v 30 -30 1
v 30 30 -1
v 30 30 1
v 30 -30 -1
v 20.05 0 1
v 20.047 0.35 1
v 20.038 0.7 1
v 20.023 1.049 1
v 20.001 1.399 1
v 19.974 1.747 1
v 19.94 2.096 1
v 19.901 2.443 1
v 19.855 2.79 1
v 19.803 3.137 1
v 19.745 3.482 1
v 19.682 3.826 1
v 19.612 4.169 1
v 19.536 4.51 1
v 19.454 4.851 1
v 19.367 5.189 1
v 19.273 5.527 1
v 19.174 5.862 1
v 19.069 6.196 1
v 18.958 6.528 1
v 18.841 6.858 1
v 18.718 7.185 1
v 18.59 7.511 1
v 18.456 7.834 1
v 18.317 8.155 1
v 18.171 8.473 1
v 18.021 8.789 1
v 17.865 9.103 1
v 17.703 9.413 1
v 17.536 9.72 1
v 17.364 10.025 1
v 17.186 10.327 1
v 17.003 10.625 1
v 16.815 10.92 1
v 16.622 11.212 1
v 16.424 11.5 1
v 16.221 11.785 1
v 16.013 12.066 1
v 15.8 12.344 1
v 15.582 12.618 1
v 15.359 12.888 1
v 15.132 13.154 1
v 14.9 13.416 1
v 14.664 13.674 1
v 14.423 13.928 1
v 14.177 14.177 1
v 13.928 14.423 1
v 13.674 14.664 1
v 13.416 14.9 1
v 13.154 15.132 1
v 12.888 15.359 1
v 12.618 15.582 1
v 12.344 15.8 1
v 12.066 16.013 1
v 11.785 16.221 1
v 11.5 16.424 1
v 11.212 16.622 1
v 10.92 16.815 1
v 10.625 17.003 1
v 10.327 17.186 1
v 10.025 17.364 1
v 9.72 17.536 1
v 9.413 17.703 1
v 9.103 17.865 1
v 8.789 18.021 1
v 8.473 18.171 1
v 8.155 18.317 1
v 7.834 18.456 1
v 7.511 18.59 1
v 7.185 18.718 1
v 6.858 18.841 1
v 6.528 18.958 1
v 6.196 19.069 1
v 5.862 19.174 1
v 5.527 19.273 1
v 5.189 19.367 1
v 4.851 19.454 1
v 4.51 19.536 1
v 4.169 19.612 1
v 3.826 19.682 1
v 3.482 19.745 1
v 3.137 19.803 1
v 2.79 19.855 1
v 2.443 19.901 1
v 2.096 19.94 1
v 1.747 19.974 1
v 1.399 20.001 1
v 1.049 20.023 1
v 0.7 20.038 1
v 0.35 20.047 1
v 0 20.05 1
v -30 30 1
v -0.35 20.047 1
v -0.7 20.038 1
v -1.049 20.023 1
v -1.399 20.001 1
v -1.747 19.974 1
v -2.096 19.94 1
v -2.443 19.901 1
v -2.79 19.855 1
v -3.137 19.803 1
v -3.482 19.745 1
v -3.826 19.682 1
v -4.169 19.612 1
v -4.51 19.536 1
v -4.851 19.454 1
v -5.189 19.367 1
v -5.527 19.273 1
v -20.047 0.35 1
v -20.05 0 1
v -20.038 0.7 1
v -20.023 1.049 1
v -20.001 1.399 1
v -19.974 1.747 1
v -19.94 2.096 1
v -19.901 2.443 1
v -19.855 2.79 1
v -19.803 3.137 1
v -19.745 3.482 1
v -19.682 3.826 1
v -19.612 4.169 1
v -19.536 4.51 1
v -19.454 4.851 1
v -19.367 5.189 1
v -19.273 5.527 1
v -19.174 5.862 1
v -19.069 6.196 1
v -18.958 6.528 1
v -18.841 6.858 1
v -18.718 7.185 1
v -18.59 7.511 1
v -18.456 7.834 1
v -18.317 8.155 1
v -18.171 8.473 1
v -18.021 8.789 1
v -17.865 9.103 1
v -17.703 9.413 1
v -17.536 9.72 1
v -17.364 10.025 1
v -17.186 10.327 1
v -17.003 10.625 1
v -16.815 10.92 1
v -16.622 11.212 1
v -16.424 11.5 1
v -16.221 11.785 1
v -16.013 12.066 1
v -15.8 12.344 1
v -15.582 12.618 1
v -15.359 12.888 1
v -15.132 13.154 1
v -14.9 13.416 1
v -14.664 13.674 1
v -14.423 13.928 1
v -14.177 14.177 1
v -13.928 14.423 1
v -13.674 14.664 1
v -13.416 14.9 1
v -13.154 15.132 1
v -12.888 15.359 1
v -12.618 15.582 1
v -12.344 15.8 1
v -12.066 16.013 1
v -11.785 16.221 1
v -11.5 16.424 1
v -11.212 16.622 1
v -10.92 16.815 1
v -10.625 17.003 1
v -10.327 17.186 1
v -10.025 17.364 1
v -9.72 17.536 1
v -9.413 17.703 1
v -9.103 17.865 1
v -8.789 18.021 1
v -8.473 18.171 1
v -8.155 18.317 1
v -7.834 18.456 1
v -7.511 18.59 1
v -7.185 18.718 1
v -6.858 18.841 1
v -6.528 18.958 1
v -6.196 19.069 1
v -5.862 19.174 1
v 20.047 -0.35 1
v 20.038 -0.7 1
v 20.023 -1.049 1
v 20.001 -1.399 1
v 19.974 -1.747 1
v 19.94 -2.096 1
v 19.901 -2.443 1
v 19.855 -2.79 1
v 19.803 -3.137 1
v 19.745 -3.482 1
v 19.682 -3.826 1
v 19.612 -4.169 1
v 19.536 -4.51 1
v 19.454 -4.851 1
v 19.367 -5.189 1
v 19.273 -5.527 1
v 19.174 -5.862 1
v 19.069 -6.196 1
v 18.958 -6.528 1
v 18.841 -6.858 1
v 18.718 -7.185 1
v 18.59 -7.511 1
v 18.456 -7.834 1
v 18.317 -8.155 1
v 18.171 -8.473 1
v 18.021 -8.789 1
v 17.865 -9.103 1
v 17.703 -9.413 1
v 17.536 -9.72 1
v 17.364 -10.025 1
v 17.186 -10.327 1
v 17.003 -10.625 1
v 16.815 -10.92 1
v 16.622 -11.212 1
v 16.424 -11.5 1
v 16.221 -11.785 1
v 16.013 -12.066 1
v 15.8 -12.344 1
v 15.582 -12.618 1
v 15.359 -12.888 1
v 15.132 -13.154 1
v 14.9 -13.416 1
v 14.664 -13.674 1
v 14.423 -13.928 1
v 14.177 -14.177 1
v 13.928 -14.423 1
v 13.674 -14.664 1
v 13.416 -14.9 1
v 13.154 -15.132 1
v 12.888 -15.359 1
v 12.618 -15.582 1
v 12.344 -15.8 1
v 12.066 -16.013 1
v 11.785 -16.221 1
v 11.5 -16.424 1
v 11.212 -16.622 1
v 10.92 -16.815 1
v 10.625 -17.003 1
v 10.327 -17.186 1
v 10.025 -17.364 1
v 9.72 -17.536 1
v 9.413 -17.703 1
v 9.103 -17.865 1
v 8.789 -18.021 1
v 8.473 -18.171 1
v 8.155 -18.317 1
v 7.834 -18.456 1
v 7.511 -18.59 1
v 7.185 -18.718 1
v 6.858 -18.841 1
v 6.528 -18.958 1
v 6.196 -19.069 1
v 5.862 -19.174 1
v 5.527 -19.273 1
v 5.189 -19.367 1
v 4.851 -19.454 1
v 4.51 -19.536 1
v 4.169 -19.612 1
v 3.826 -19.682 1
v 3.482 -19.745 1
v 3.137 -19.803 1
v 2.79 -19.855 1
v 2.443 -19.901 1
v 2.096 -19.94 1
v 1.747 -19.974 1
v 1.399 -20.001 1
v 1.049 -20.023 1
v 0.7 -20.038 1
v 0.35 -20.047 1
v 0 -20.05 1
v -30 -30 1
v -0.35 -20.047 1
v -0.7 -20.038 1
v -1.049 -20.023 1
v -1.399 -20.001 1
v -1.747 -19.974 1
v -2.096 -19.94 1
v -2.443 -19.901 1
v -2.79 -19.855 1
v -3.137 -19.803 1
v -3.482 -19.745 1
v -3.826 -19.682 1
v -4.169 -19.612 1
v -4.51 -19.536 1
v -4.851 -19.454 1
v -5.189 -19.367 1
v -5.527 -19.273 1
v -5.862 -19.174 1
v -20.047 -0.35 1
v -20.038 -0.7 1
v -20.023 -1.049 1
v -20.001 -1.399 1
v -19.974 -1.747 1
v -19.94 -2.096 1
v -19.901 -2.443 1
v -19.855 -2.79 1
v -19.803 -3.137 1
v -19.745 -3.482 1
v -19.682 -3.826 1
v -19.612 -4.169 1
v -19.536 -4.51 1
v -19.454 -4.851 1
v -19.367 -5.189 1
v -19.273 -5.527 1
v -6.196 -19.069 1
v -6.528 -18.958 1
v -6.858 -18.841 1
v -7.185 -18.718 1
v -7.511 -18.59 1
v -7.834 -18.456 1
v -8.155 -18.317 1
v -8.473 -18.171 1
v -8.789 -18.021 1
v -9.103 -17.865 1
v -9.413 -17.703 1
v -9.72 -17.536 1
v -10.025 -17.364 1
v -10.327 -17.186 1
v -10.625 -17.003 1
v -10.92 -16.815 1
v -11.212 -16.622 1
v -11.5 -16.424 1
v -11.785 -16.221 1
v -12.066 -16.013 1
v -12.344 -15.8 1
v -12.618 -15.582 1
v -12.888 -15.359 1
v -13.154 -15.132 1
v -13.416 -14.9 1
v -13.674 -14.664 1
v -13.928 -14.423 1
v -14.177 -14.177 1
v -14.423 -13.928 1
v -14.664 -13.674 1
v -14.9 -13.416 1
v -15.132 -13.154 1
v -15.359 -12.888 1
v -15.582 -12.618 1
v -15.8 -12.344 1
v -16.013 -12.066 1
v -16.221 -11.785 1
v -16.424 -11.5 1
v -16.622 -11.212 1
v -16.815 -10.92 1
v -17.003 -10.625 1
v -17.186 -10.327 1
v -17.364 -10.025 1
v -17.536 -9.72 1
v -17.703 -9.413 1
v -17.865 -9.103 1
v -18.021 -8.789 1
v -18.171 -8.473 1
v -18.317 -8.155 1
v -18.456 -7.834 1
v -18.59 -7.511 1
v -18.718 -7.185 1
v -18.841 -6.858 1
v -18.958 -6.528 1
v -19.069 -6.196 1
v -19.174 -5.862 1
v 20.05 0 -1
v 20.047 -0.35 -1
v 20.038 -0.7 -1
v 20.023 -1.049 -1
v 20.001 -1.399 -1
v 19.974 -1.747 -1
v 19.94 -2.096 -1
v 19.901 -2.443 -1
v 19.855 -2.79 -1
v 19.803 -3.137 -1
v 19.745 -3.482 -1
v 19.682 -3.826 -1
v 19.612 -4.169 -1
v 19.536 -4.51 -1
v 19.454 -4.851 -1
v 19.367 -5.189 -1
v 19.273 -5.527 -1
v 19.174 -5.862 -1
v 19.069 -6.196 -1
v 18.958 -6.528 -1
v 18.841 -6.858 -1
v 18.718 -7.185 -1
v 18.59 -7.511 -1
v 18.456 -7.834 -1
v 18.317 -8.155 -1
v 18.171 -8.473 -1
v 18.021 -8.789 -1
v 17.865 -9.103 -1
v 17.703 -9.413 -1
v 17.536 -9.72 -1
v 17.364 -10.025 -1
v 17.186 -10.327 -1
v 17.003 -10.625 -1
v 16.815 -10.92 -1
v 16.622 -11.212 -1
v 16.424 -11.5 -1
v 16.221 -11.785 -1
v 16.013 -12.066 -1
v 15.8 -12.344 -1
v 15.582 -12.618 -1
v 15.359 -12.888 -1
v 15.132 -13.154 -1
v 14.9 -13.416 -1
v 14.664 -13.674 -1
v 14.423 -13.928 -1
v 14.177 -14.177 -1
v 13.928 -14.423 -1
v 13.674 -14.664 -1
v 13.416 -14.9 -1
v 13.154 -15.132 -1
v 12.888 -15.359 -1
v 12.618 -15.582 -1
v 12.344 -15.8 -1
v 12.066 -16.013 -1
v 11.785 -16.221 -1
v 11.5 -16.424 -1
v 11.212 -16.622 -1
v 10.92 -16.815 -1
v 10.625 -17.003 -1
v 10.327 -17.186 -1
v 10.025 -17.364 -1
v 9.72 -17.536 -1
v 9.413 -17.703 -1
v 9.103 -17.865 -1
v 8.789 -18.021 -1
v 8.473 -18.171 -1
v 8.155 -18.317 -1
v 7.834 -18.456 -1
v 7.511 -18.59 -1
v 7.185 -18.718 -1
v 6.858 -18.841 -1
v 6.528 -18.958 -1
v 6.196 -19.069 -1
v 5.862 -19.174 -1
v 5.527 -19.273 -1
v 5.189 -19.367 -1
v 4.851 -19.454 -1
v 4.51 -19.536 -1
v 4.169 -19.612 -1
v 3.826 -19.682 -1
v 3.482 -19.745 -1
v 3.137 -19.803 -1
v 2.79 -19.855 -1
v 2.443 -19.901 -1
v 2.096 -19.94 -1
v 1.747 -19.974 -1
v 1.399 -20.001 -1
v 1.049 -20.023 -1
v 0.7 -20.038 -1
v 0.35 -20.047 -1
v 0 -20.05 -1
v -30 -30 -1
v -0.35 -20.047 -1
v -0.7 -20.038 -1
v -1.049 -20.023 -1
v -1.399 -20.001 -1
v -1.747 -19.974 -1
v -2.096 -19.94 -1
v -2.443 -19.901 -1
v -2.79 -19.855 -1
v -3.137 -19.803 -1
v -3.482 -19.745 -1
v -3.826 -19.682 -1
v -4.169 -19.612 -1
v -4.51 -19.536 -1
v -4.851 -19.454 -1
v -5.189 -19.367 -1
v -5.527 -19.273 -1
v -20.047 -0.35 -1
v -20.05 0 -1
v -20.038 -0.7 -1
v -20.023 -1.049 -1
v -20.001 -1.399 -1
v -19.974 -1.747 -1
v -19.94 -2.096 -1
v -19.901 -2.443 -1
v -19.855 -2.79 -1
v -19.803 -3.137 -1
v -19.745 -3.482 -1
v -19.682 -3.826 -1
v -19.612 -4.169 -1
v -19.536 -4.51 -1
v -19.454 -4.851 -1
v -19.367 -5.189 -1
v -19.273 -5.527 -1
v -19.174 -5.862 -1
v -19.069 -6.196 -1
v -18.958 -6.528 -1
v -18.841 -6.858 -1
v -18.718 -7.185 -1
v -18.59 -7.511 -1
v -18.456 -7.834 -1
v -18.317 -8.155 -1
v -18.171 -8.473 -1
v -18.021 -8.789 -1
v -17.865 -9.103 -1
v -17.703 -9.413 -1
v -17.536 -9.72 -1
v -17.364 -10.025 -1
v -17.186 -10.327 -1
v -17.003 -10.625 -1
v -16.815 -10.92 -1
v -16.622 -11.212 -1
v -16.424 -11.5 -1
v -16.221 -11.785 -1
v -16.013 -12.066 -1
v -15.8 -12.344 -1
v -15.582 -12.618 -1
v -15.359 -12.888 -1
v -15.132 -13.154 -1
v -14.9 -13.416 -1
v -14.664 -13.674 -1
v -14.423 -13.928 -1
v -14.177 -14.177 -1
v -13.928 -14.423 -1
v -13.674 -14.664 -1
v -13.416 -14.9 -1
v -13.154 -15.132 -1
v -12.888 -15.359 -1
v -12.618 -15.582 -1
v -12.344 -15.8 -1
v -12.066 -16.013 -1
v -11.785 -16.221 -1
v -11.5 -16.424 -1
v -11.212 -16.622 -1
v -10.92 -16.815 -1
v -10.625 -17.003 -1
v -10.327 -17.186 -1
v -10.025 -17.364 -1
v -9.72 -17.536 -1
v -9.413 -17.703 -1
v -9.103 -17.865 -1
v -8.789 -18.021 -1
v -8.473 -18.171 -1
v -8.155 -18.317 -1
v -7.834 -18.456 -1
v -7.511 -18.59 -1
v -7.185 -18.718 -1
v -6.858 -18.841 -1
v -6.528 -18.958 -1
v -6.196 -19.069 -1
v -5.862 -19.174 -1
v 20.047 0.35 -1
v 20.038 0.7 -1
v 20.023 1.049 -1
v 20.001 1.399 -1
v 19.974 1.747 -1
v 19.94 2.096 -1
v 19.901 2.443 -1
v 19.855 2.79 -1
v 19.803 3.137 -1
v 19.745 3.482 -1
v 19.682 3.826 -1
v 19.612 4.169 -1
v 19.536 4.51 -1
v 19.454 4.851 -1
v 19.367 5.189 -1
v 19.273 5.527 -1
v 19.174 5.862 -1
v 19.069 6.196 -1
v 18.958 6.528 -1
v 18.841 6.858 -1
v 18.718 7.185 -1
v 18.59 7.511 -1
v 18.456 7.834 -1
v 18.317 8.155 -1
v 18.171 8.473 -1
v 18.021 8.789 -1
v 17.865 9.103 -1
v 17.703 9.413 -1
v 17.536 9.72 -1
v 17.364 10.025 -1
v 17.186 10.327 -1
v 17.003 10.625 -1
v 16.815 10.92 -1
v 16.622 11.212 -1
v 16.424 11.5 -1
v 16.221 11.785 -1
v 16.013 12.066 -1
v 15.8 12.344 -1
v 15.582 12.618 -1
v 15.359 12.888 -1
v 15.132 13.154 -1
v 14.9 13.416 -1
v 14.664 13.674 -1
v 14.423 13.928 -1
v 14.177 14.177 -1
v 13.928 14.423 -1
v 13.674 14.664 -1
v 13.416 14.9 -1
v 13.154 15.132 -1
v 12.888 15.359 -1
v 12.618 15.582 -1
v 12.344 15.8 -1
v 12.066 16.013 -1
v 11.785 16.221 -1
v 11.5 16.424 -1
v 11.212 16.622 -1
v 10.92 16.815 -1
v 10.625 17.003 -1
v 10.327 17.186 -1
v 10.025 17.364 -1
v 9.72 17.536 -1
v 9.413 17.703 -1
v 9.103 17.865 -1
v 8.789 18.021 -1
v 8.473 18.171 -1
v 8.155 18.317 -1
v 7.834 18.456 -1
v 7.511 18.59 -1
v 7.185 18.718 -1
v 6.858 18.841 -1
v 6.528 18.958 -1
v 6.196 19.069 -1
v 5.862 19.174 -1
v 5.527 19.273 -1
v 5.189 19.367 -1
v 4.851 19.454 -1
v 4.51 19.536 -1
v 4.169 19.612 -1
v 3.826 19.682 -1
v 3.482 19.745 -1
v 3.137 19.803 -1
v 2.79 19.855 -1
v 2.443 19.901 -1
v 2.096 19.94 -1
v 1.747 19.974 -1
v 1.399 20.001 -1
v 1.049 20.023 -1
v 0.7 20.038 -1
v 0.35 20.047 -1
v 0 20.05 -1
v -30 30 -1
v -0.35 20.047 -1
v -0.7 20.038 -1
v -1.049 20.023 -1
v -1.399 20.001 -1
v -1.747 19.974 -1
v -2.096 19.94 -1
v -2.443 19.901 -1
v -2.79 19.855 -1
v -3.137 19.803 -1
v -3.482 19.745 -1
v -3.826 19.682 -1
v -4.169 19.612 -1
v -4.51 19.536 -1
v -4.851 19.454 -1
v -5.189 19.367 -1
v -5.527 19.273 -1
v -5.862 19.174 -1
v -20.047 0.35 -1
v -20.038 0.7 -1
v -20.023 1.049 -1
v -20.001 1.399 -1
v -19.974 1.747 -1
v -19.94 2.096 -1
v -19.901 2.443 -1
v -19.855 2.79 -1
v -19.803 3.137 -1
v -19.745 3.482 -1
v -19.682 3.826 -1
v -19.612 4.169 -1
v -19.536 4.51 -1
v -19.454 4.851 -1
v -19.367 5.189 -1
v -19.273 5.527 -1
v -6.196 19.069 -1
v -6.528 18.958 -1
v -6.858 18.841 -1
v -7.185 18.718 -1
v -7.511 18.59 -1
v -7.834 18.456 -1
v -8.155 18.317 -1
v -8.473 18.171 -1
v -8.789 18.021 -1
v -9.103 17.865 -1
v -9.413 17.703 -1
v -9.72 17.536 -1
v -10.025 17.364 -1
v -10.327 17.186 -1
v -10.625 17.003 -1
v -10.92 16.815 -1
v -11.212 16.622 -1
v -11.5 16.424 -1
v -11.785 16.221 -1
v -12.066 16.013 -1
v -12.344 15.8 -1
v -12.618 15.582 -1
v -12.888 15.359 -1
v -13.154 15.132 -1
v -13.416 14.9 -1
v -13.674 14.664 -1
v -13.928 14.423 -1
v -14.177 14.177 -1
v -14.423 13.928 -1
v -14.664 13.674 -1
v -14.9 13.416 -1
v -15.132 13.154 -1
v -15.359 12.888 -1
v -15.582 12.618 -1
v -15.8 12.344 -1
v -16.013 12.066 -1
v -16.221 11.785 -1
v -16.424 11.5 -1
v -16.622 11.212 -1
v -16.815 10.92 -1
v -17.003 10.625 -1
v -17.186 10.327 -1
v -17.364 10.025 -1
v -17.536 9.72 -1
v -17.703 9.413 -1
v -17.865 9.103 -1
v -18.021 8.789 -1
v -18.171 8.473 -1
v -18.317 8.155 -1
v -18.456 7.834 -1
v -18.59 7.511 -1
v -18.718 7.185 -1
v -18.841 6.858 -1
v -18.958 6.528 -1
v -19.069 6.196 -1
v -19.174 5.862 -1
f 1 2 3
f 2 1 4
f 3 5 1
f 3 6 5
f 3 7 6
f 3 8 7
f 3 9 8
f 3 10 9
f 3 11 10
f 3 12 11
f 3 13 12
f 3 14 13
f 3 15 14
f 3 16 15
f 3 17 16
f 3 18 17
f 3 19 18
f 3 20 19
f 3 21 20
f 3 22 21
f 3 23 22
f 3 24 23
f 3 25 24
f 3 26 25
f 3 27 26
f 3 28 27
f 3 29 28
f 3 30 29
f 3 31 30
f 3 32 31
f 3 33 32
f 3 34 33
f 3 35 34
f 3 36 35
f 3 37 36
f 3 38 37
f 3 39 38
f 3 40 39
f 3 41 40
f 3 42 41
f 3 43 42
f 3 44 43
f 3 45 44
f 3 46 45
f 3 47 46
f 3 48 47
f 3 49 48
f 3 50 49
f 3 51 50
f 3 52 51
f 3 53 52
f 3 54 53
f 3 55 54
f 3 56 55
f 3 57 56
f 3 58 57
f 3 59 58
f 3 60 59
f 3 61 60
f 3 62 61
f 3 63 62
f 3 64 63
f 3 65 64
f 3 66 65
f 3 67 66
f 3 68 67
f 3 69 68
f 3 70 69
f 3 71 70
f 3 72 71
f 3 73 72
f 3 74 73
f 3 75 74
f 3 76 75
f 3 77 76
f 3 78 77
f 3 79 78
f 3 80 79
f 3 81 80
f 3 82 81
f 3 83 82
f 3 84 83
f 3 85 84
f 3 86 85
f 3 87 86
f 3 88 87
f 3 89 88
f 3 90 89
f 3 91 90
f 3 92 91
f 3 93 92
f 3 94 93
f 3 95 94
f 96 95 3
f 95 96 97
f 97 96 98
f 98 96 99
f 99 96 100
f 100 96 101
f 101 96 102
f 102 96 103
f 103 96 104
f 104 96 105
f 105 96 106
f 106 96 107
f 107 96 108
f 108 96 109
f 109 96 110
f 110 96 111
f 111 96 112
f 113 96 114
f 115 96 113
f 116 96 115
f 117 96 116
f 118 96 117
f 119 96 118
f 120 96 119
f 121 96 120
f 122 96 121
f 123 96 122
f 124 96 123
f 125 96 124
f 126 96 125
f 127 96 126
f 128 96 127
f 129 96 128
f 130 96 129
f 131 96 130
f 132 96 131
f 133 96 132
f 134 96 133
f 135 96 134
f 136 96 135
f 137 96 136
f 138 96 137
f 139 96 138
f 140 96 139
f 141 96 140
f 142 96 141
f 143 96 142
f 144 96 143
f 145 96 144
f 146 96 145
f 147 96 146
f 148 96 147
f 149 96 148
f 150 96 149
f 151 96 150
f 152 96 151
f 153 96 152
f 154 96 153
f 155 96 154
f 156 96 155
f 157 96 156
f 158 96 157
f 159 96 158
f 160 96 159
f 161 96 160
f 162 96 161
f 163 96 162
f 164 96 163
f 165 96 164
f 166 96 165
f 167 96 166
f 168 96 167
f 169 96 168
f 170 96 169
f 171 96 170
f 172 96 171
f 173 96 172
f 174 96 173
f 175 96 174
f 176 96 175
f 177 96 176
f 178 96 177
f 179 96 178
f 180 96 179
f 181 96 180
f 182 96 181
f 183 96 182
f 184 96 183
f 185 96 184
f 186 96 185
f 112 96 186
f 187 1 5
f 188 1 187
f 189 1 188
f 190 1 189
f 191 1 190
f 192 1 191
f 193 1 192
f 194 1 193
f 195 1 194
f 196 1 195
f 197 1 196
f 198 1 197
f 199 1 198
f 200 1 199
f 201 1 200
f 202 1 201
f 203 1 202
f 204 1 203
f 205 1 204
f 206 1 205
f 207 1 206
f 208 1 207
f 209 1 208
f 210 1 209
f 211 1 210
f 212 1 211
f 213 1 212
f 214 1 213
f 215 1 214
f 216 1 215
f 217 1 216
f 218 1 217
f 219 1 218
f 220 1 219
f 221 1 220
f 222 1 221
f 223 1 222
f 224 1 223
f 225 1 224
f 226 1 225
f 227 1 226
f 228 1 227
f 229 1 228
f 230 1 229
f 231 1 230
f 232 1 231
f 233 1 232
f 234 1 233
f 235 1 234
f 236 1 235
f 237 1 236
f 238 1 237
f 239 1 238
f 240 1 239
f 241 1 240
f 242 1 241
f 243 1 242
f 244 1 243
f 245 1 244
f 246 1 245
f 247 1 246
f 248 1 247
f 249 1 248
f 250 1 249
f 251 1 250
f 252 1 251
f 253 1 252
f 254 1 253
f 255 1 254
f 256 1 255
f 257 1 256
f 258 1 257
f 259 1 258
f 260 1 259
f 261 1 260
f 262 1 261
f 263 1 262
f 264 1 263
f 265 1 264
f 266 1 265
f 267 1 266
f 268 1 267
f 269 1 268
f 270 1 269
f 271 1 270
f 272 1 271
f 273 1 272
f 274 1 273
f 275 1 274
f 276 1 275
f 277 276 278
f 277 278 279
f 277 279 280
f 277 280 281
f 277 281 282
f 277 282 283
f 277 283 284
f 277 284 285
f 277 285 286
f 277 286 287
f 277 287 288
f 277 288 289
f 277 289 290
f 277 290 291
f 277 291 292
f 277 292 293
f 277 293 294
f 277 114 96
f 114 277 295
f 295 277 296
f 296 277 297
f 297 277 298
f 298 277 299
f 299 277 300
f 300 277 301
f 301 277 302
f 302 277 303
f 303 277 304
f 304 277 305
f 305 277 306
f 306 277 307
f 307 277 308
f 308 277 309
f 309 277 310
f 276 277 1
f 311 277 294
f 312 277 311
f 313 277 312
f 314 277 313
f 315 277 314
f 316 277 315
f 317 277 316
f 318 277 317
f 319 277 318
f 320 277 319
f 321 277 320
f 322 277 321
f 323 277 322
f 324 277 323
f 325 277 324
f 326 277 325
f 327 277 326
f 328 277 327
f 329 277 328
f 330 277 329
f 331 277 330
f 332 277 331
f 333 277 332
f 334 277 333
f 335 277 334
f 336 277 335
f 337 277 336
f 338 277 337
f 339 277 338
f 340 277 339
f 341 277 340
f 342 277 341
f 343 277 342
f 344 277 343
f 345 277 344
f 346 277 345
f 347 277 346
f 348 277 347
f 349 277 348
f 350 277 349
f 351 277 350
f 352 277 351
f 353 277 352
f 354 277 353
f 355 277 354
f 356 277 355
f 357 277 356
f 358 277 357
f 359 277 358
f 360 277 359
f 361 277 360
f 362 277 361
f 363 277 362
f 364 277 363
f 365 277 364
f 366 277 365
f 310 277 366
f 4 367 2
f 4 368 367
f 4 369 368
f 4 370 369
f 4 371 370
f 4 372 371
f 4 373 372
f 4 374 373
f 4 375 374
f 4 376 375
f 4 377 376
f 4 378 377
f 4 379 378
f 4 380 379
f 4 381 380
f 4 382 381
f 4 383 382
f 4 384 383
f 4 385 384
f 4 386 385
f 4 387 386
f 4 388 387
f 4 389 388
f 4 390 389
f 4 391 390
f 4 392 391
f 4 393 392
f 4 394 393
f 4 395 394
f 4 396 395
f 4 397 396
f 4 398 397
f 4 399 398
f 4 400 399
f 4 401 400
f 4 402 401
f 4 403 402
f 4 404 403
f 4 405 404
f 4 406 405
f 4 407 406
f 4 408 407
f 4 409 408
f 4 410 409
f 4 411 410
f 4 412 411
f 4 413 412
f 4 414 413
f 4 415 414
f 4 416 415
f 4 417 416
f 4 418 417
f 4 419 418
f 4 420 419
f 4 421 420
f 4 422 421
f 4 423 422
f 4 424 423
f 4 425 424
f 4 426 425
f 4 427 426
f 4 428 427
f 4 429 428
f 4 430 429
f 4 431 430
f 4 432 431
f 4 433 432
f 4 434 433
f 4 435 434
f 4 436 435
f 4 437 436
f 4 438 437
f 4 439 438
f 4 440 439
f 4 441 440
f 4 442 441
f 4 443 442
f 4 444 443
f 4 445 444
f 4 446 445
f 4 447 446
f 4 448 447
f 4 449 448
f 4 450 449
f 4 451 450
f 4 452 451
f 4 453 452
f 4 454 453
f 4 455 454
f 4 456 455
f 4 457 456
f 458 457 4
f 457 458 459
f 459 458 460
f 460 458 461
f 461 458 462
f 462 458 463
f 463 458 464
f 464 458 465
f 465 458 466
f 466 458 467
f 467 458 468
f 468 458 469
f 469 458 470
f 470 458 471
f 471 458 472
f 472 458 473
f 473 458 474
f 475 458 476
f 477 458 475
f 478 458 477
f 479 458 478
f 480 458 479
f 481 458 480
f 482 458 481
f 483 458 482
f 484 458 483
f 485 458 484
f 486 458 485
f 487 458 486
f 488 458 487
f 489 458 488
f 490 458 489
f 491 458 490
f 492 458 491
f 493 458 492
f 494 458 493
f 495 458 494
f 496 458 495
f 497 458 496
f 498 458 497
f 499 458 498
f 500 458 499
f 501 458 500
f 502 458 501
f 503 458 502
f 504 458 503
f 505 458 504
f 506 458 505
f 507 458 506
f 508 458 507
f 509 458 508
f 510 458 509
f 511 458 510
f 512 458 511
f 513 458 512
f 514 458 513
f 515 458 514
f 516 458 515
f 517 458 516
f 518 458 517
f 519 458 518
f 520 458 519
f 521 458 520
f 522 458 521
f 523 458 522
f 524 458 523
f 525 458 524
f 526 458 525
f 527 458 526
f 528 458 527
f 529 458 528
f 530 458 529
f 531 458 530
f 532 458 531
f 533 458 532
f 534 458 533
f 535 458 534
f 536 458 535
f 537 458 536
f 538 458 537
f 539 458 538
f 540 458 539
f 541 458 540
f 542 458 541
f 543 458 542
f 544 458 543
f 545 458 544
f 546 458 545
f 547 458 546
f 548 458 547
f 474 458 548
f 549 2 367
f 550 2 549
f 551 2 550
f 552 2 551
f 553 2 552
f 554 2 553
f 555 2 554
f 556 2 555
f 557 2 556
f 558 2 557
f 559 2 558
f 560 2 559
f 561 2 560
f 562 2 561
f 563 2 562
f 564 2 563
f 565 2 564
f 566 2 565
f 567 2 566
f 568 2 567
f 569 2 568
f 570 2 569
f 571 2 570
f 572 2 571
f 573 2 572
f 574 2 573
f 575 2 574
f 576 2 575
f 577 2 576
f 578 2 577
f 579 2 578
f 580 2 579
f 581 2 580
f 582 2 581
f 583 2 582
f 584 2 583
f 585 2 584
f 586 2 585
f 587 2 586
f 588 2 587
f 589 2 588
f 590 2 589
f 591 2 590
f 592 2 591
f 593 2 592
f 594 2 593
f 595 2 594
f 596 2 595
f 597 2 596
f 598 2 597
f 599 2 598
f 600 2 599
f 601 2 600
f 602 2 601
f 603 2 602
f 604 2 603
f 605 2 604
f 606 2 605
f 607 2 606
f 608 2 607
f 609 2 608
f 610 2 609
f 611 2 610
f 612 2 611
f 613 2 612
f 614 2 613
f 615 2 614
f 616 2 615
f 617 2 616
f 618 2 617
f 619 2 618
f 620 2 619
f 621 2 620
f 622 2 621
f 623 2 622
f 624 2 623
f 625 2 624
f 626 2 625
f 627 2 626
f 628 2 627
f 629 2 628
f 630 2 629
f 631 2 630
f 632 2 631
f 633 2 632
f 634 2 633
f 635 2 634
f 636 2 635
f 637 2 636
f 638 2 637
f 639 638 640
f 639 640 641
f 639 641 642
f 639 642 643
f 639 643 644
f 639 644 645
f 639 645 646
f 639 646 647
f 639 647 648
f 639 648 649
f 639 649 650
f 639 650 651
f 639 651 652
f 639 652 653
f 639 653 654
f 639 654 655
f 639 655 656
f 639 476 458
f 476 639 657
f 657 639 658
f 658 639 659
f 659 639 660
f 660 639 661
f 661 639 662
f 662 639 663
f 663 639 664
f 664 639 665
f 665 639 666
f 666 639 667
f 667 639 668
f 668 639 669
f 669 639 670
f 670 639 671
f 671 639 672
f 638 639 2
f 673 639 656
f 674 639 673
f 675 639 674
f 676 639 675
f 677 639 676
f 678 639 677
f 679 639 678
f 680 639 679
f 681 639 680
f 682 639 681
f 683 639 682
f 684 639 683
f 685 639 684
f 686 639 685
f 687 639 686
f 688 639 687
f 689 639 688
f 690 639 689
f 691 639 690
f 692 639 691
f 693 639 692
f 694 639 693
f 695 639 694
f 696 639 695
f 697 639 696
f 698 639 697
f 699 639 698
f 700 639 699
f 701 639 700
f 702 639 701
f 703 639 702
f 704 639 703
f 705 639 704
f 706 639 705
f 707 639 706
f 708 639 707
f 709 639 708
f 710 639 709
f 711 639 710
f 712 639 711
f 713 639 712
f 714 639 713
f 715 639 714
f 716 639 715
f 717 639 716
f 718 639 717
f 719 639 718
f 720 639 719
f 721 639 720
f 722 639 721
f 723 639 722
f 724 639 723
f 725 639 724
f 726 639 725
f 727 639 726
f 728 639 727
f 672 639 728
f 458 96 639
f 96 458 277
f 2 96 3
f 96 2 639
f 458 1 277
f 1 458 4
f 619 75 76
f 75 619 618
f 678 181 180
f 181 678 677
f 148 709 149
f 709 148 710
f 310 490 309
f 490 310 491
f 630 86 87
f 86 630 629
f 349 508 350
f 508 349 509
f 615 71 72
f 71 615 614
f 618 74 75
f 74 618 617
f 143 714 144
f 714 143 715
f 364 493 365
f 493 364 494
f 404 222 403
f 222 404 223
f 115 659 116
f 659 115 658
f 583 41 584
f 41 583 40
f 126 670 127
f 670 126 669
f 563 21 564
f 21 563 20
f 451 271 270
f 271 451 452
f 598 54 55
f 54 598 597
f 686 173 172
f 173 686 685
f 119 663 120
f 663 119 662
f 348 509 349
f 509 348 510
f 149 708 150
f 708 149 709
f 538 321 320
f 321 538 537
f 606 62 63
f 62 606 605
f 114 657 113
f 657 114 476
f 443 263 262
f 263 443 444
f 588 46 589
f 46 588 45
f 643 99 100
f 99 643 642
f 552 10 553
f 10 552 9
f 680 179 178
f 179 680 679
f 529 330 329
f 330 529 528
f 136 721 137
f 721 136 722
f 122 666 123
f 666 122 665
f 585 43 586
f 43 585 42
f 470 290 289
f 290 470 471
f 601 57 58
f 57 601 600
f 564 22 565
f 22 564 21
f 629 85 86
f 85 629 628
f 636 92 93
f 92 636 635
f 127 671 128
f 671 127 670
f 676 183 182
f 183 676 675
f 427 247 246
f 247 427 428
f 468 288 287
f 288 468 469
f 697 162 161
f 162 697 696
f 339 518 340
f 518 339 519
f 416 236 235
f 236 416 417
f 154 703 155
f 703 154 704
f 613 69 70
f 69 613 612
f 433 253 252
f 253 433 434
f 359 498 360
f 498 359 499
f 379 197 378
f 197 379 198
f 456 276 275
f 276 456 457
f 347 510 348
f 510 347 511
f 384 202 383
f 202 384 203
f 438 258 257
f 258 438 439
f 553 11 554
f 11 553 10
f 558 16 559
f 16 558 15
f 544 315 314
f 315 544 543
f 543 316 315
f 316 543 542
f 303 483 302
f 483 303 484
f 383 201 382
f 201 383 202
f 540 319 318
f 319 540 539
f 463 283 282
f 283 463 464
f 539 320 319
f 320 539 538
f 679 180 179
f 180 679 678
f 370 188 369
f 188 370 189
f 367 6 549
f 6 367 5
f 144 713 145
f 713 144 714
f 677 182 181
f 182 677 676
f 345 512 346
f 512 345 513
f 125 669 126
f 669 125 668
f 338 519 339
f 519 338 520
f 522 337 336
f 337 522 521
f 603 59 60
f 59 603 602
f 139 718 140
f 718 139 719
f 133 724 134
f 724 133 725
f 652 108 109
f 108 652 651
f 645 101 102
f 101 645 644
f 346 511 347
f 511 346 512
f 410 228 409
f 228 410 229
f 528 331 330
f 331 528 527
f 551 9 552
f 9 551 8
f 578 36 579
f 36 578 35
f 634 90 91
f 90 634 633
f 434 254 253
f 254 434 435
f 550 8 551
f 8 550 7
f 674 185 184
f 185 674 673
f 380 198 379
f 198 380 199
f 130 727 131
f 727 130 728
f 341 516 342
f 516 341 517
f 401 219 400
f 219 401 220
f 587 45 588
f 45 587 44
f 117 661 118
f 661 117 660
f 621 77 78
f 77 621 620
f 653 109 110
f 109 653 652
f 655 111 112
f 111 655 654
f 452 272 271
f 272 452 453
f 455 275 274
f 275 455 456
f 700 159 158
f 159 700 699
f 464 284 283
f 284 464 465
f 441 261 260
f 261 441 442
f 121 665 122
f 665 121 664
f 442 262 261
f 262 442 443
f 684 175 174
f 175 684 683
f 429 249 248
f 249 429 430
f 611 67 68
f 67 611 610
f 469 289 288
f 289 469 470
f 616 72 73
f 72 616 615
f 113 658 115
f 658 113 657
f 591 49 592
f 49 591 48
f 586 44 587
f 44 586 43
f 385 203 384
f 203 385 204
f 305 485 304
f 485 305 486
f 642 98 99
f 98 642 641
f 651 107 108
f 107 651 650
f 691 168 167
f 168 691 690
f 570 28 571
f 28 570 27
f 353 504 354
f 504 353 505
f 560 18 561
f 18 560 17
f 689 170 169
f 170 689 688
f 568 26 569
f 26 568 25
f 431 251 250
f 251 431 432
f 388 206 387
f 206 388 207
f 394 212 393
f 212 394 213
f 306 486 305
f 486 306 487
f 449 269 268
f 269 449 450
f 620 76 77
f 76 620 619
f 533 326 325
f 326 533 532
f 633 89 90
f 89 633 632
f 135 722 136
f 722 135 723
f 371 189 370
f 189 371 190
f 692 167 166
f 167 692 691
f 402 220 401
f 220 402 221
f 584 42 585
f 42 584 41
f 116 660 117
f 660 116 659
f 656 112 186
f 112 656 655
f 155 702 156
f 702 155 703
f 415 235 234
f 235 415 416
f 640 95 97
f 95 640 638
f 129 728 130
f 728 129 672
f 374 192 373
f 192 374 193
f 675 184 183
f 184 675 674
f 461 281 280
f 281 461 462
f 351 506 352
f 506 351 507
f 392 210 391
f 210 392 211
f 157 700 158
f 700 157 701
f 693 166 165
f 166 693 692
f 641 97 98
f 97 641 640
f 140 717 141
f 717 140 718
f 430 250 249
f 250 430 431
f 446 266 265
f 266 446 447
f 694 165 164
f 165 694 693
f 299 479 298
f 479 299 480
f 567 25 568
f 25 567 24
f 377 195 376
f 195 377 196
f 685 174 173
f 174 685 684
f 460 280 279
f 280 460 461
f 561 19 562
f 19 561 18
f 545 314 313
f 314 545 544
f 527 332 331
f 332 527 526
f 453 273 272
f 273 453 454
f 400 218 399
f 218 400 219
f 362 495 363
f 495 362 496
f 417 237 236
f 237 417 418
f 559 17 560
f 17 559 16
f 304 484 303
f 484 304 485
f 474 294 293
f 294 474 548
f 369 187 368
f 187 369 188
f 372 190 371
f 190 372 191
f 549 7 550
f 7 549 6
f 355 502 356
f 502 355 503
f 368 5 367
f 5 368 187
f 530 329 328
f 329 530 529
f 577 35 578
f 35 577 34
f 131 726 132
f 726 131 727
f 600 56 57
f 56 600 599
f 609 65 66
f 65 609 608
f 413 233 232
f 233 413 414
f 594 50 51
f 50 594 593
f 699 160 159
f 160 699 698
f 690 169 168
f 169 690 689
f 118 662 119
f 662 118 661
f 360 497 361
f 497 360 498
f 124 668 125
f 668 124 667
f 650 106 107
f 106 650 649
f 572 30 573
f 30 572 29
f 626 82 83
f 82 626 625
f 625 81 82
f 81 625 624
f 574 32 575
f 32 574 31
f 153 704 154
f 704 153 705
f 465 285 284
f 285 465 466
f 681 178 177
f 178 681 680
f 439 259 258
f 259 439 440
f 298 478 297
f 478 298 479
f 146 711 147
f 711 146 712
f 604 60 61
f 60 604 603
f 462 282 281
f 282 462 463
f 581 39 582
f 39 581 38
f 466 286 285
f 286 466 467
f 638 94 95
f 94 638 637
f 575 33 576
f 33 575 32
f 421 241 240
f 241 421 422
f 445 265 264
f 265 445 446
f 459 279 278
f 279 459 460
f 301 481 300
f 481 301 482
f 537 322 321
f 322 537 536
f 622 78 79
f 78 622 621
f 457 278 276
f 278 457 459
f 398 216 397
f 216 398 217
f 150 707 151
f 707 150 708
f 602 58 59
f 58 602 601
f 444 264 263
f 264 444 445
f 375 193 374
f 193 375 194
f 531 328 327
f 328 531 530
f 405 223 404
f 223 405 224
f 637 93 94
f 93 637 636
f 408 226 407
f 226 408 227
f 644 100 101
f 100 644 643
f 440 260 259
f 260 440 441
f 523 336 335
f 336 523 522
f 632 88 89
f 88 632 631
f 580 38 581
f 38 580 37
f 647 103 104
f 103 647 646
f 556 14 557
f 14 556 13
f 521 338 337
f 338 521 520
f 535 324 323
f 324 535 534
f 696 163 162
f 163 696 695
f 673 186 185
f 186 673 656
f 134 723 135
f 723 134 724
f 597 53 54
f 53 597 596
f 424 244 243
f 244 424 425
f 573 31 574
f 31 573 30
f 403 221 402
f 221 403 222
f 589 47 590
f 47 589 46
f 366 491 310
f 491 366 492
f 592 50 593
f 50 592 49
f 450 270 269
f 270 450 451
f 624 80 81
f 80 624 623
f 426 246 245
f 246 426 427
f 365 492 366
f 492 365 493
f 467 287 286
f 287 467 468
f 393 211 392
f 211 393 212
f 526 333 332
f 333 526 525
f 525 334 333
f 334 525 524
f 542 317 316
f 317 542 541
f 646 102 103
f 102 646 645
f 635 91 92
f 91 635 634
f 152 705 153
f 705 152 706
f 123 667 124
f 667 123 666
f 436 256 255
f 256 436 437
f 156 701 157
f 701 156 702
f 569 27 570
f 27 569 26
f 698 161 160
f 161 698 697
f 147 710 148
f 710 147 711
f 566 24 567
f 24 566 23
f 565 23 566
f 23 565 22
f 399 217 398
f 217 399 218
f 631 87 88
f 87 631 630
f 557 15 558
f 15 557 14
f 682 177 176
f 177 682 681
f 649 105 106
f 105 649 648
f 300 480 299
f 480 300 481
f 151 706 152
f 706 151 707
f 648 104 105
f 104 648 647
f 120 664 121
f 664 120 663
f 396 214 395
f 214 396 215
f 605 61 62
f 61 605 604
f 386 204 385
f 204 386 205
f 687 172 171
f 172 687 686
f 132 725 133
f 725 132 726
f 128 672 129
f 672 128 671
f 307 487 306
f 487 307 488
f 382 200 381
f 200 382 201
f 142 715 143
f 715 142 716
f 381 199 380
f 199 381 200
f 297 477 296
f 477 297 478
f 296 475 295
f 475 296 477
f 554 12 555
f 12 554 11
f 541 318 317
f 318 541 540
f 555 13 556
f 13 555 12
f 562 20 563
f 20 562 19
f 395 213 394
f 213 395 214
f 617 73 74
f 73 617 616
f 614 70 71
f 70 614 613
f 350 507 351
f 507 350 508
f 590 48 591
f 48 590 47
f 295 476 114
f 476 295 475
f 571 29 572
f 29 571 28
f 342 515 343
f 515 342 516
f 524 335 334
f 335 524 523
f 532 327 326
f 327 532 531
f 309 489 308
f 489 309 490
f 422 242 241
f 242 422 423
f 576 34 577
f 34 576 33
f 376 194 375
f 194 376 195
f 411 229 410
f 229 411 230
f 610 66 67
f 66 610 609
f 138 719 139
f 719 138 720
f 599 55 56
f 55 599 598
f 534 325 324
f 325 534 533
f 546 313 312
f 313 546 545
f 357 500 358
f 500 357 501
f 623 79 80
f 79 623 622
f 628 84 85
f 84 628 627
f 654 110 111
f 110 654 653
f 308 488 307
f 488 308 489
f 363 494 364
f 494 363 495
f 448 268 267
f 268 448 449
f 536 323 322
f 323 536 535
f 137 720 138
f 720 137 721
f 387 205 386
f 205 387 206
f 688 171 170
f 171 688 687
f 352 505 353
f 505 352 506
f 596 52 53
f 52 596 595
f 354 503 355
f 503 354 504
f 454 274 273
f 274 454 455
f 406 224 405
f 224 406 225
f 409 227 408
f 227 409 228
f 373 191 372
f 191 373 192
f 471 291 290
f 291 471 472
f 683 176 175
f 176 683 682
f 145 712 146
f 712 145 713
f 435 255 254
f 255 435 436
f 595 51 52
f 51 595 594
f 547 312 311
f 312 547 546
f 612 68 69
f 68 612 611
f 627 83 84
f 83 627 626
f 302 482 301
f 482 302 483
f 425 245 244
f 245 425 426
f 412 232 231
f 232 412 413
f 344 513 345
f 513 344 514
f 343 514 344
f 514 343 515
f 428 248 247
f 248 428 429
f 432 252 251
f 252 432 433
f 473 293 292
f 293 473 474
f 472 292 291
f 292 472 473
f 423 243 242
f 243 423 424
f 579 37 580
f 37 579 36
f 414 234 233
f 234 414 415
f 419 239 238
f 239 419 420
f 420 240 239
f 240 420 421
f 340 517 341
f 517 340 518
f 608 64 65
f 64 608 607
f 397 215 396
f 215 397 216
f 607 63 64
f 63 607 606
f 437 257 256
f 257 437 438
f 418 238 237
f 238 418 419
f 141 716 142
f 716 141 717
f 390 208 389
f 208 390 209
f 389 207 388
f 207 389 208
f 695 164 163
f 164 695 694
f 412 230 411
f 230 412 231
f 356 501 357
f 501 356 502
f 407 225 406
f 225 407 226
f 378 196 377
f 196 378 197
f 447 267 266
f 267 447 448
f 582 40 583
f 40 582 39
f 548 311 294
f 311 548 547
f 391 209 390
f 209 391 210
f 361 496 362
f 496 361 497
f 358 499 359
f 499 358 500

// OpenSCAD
height = 2;
side = 60;
hole = 40;
epsilon = 0.001;
tolerance = 0.1;

$fa = 1.0;
$fs = 0.14;

difference()
{
	cube([ side, side, height ], center = true);
	translate([ 0, 0, -height ])
	linear_extrude(height = 3 * height) circle(d = hole + tolerance);
}
